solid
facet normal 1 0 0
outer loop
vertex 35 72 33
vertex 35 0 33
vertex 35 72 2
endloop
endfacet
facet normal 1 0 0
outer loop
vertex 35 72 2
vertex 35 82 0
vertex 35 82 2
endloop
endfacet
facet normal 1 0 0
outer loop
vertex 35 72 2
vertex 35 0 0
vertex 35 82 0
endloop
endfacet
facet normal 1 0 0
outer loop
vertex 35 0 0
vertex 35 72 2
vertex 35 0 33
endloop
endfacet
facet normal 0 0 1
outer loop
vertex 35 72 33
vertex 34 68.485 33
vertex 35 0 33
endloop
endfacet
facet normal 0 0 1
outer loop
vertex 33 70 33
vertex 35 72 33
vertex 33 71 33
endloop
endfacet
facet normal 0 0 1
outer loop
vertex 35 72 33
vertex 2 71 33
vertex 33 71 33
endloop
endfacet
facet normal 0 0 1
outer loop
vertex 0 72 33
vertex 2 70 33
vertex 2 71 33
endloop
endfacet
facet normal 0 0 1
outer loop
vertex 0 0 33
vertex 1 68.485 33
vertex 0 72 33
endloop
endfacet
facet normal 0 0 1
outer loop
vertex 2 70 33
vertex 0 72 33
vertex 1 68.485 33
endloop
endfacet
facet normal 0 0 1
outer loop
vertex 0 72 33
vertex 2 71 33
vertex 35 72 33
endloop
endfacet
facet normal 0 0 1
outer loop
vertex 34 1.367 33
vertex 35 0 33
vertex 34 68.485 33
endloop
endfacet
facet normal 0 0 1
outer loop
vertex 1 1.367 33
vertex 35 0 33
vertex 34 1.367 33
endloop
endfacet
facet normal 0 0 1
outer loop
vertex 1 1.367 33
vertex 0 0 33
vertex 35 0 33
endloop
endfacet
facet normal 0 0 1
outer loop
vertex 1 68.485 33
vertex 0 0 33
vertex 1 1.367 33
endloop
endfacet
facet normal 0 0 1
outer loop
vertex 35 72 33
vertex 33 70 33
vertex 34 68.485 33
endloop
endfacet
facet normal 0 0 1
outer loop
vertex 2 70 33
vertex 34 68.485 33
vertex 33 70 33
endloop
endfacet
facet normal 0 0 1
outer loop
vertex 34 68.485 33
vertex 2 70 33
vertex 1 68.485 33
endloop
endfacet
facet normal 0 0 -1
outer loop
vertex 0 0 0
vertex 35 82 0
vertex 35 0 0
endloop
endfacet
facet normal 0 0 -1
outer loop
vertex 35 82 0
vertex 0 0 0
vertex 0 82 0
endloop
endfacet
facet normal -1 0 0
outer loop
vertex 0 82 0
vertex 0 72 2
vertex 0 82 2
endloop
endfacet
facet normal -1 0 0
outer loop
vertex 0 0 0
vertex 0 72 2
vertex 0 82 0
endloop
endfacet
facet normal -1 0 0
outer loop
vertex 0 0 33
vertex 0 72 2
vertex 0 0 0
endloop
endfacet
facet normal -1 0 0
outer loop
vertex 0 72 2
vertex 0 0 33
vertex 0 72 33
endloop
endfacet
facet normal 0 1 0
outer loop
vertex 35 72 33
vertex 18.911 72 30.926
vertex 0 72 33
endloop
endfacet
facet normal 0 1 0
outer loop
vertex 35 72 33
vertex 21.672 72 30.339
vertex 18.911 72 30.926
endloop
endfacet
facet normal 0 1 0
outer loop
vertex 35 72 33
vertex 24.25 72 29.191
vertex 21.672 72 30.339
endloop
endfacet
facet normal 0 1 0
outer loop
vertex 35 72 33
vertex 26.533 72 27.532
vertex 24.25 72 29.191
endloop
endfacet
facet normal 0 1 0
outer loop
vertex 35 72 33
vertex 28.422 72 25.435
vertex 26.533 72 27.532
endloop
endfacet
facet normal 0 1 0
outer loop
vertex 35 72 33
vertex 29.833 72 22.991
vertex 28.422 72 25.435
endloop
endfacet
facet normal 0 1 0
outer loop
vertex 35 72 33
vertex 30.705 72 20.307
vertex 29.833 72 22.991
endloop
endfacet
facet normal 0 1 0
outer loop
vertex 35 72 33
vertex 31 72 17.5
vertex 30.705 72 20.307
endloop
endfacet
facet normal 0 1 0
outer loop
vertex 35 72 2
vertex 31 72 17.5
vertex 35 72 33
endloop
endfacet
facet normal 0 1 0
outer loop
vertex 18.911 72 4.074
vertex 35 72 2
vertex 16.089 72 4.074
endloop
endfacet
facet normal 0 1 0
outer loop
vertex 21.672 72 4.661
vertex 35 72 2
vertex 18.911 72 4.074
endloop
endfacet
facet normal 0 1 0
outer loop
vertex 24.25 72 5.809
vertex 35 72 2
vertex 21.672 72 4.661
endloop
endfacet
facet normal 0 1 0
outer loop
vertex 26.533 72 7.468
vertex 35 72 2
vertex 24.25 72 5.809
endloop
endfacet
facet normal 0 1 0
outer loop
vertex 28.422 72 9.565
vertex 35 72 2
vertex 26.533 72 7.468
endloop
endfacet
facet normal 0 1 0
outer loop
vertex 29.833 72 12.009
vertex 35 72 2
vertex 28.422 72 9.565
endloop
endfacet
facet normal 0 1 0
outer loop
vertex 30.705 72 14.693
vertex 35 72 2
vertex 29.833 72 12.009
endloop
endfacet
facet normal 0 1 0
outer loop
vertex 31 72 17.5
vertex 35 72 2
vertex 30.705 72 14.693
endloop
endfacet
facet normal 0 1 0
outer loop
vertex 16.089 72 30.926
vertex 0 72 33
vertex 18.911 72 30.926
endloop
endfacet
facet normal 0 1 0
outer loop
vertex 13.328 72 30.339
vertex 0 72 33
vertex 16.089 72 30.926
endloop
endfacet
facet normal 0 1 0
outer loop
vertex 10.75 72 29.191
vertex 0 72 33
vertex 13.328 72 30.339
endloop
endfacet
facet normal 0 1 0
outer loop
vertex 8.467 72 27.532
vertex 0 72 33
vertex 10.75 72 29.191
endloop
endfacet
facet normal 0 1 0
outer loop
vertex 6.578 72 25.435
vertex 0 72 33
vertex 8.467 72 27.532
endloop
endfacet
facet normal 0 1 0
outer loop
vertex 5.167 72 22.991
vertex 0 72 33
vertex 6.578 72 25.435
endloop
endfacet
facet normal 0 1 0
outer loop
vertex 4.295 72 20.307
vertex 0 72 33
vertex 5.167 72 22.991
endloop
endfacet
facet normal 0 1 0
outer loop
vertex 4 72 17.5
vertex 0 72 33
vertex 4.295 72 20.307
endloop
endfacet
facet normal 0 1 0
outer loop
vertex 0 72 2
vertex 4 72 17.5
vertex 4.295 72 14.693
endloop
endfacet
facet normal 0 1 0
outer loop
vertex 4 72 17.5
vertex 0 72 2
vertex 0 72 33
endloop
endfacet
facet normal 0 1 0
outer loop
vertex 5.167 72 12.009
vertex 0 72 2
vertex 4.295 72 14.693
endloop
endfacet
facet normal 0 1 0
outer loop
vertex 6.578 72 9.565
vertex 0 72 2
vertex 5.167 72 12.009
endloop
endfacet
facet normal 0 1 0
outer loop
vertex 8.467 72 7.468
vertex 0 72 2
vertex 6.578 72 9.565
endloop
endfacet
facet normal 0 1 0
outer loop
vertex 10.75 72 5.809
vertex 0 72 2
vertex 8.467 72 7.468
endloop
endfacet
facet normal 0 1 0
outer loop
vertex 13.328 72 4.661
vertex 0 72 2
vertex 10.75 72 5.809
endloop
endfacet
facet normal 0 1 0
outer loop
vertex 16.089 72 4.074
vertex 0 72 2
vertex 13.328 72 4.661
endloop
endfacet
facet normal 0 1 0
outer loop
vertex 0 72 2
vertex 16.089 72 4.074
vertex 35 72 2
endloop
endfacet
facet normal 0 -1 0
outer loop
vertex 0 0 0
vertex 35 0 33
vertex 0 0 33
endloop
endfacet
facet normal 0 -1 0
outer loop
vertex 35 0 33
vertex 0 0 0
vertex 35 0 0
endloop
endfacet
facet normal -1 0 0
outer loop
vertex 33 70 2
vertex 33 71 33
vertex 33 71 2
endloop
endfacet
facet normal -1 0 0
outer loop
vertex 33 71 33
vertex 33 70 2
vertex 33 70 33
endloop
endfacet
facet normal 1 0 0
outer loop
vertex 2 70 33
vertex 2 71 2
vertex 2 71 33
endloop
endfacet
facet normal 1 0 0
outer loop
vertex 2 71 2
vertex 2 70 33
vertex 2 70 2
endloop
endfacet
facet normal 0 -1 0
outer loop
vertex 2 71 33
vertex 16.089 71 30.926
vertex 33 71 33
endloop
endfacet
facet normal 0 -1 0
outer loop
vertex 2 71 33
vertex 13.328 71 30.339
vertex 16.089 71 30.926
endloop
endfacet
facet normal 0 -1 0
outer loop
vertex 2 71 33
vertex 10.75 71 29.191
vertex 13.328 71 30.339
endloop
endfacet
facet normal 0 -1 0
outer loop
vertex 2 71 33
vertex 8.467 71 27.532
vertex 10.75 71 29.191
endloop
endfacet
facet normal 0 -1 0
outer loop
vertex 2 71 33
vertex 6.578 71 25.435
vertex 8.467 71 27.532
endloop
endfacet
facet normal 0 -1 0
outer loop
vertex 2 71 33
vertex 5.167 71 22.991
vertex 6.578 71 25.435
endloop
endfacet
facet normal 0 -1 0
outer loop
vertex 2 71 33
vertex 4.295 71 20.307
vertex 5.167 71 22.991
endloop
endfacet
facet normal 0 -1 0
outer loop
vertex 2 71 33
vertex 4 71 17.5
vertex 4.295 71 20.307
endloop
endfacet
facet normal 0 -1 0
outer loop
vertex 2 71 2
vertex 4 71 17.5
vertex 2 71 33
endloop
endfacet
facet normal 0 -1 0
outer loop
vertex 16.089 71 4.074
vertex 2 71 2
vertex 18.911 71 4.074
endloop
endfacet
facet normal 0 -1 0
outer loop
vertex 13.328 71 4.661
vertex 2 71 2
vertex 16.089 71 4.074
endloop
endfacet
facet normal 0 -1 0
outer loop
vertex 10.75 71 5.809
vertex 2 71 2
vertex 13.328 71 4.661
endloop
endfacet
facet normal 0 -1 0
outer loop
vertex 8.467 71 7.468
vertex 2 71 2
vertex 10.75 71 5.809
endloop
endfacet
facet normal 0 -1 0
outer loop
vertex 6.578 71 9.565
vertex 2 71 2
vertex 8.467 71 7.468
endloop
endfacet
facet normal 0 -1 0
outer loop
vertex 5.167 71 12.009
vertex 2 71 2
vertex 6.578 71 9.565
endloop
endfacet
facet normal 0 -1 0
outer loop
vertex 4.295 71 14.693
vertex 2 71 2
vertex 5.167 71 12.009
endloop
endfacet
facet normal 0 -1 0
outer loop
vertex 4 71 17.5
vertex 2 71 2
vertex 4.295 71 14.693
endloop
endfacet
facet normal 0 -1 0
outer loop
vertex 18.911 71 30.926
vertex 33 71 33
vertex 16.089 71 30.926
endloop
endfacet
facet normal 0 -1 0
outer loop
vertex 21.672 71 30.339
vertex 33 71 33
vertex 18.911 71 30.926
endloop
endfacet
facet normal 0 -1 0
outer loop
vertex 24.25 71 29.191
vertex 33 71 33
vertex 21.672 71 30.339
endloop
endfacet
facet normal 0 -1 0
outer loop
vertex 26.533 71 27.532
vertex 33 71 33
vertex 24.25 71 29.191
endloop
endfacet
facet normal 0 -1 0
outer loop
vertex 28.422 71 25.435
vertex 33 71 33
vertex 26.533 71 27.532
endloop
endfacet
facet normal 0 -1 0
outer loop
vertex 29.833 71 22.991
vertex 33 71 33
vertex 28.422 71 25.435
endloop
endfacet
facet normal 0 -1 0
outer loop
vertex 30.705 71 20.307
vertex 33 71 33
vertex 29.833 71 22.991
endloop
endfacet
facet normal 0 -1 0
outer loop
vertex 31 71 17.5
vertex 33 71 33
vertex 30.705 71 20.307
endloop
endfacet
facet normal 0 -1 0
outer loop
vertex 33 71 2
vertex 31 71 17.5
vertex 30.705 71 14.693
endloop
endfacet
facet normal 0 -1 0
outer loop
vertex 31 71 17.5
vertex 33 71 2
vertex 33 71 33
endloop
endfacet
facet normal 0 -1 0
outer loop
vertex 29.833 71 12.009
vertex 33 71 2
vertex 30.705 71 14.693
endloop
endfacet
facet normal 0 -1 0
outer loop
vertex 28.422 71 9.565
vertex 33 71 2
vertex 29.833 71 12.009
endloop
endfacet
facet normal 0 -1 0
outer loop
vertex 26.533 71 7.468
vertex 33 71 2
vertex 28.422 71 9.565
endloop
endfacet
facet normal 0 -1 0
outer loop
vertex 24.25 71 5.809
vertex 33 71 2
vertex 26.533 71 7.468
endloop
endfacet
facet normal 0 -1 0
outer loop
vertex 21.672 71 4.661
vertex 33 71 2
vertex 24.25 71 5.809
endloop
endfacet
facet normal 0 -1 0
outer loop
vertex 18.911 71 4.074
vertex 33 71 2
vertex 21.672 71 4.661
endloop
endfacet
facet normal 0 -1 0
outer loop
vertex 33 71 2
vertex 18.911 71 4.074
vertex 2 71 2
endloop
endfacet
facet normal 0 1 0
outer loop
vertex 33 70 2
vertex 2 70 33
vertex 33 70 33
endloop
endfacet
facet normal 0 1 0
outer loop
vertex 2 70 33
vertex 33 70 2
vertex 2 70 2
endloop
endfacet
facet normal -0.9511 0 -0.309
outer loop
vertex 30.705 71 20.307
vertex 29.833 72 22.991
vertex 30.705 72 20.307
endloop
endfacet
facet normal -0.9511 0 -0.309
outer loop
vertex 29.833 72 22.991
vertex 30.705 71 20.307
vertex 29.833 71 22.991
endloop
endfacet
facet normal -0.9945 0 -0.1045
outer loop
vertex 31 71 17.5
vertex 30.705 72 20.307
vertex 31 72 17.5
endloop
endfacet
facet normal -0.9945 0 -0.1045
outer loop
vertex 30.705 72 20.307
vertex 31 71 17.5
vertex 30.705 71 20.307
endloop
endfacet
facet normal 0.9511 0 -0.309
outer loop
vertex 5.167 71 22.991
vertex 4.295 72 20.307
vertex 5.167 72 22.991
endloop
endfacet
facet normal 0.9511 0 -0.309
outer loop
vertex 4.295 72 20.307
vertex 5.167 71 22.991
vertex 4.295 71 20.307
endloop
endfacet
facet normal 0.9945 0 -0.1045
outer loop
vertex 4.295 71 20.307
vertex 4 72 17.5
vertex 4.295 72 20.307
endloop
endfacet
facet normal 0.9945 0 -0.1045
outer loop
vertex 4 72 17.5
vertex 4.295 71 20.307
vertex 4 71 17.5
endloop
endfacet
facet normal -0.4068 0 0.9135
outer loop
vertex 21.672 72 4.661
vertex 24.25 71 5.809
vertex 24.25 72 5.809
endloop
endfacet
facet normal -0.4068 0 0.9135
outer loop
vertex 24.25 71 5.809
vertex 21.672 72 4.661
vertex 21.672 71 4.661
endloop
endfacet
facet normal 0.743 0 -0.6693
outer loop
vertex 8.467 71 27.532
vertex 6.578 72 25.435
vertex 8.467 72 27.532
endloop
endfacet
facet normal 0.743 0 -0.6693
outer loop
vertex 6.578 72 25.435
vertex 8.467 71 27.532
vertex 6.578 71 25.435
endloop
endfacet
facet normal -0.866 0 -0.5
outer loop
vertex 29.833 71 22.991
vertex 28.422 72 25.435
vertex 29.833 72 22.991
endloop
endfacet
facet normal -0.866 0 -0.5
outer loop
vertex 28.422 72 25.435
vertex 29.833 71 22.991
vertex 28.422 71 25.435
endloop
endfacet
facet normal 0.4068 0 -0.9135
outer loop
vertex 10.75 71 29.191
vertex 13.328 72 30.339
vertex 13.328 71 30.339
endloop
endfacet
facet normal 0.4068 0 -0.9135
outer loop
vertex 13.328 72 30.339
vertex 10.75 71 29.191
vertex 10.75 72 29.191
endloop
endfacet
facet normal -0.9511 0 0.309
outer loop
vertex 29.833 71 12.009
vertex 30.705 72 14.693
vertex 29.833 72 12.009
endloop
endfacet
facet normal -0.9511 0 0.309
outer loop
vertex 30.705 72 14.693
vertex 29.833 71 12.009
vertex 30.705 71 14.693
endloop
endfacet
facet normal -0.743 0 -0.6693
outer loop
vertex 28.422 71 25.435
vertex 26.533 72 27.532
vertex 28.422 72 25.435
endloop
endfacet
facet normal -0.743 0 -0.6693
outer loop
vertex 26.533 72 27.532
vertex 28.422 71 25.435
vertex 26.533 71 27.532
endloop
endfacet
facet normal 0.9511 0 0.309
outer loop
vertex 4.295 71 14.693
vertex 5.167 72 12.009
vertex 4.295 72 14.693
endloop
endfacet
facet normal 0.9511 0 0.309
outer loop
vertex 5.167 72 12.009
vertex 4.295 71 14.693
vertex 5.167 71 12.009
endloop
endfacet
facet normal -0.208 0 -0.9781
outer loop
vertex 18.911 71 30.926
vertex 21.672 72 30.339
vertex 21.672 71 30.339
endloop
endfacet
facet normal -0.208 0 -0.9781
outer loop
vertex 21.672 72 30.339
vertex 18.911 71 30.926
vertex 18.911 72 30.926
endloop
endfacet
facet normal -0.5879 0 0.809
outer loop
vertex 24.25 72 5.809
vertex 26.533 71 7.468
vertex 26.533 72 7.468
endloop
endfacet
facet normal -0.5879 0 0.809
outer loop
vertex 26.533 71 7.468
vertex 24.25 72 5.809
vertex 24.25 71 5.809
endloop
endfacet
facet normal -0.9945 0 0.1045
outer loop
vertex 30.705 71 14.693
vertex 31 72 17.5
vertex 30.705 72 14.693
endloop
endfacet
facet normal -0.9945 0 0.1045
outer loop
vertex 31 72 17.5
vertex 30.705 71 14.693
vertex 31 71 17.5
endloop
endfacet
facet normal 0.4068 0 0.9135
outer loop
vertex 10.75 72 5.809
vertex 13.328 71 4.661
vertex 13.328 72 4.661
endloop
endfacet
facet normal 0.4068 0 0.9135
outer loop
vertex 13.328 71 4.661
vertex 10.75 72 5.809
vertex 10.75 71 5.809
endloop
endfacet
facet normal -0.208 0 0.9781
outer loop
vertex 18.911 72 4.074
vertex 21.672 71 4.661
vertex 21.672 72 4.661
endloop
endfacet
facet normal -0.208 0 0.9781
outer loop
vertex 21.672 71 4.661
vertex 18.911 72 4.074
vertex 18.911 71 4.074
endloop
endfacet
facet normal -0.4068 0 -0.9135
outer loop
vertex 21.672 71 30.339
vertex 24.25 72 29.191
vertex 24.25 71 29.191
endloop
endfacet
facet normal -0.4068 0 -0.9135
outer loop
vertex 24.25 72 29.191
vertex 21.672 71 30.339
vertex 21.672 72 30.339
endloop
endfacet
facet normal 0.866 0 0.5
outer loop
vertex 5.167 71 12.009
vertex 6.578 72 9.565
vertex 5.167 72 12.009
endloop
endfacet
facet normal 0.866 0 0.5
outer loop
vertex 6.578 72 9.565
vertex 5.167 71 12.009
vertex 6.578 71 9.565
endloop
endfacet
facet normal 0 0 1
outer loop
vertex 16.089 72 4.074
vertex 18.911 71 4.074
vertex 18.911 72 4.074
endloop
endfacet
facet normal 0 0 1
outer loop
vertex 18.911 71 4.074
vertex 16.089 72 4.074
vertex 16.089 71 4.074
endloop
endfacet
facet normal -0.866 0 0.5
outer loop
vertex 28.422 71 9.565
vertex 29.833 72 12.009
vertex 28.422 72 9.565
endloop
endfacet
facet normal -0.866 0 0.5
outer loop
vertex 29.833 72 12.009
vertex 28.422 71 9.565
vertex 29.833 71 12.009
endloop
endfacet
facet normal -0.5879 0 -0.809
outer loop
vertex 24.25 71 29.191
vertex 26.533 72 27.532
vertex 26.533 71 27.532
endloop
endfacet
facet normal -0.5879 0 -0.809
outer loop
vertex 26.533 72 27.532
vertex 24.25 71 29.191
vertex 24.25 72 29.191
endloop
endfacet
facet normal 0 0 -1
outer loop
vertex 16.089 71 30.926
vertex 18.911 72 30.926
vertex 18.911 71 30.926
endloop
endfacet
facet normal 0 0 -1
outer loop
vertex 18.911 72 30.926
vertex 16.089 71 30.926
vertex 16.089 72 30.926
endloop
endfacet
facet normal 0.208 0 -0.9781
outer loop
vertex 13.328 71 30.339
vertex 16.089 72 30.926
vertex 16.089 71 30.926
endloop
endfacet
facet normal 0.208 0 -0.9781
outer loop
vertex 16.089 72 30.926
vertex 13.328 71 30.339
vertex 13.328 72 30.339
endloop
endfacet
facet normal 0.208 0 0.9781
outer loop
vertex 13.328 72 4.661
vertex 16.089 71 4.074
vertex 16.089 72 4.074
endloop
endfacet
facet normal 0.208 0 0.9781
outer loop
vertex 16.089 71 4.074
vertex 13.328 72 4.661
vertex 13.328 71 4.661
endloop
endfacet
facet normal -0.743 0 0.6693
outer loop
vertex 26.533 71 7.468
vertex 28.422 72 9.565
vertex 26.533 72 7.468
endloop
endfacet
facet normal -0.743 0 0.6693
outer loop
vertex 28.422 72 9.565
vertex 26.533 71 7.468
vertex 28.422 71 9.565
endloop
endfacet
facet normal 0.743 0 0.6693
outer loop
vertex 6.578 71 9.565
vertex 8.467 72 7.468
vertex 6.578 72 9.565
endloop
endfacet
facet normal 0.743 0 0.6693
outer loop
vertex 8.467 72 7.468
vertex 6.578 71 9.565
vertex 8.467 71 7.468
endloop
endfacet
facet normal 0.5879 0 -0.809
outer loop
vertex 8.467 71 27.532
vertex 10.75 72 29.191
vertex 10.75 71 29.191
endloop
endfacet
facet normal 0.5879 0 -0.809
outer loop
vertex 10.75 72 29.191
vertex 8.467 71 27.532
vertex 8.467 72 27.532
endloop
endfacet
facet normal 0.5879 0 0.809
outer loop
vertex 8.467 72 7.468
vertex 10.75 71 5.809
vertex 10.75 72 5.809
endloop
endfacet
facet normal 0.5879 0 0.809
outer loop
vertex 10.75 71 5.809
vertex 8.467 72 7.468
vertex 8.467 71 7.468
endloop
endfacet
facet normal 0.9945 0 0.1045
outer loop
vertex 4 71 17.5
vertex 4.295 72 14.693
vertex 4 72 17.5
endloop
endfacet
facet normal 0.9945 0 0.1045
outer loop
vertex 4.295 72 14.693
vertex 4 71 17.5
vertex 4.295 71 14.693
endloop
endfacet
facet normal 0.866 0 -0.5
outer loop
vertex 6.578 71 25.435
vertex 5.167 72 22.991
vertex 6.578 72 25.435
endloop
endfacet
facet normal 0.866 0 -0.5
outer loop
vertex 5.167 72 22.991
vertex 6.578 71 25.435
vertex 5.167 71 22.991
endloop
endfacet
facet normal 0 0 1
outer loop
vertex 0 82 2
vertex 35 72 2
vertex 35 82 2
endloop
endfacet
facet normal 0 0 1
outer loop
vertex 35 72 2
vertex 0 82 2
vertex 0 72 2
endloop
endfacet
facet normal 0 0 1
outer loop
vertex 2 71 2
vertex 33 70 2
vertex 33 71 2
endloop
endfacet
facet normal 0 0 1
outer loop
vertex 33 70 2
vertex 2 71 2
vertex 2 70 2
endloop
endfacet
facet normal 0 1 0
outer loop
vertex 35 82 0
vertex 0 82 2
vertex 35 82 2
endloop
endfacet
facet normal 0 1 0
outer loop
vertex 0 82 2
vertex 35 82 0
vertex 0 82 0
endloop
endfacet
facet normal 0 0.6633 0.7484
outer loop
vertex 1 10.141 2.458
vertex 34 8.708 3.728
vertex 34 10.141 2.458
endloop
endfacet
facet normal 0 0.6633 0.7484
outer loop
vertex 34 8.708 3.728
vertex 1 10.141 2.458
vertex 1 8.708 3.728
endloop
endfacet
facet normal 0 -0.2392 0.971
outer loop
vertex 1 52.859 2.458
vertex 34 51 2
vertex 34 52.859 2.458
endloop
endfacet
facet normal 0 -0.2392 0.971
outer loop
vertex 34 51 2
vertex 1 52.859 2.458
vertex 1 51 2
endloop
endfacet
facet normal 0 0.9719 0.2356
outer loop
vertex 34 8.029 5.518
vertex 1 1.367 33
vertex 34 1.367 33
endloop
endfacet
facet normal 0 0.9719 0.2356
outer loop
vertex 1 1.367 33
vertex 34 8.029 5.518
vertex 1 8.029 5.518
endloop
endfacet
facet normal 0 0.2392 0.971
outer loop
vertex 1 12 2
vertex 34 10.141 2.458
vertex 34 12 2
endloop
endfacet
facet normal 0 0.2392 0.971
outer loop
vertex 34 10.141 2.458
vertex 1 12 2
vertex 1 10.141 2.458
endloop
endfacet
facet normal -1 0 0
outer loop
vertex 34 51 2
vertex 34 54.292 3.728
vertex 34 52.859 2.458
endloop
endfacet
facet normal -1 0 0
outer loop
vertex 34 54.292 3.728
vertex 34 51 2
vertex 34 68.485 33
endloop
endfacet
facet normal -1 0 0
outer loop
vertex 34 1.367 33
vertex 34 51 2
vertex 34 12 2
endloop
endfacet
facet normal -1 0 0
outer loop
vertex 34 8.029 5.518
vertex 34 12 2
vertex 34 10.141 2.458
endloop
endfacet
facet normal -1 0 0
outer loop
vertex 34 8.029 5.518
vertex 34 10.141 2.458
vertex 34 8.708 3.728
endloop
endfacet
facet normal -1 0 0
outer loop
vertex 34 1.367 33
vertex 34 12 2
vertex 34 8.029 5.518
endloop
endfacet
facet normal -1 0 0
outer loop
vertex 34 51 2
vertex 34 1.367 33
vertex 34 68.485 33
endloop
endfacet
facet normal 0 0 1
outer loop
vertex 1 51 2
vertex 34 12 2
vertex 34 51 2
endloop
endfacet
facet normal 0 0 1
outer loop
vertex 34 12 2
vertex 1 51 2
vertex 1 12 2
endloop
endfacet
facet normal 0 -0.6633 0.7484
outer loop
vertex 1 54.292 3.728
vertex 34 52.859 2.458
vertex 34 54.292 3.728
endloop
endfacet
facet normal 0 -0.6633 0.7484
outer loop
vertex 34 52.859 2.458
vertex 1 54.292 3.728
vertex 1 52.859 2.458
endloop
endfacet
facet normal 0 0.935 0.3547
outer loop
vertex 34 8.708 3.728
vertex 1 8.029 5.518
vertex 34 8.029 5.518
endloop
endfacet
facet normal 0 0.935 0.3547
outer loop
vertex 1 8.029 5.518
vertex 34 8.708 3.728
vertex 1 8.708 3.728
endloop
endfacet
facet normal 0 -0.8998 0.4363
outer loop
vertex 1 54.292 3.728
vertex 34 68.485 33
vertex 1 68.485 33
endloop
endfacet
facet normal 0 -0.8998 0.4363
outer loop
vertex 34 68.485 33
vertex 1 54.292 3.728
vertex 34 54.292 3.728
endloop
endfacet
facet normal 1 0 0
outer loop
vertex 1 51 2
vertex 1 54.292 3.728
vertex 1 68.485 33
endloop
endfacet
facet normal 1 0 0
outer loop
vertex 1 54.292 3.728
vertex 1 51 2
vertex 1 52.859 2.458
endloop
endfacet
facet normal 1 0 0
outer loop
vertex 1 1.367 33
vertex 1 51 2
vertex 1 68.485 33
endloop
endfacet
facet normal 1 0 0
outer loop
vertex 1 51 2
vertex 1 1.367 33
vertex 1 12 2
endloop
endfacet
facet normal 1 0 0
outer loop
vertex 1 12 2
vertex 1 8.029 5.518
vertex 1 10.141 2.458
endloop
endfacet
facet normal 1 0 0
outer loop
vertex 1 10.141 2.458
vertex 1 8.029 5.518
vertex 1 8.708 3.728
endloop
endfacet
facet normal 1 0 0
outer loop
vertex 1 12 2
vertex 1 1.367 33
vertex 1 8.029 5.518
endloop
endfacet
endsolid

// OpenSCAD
echo("----------------------------------------");
smidge = .01;
minkowsky_diameter = 2;
handle_length = 10;
handle_height = 3;
base_width = 35;
base_length = 72 + handle_length;
base_height = 2;

outer_width = base_width;
outer_length = base_length - handle_length;
outer_height = 35 - base_height;

inner_width = 32;
inner_length = 68;
inner_height = 32;

slot_thickness = 1;
slot_setback = 2;
slot_front_position = outer_length - slot_setback;
slot_side_margin = 2;
slot_width = outer_width - 2*slot_side_margin;
slot_height = outer_height;

window_diameter = outer_width - 8;
edge_rounder_diameter = 8;

drawer();

//the hollow
bottom_z = edge_rounder_diameter/2+base_height;
top_z = outer_height-edge_rounder_diameter/2 + 10;
back_y =  edge_rounder_diameter/2;
front_y =  outer_length-edge_rounder_diameter/2 - 1;
hollow_x = 1;

module the_hollow() {
  color("red") {
    hull() {
    back_bottom_edge();
    back_top_edge();
    front_bottom_edge();
    front_top_edge();
    }
  }
}

module back_bottom_edge() {
  translate([hollow_x, back_y+edge_rounder_diameter, bottom_z]) {
    edge_rounder();
  }
}
module back_top_edge() {
  translate([hollow_x, back_y, top_z]) {
    edge_rounder();
  }
}
module front_bottom_edge() {
  translate([hollow_x, front_y-edge_rounder_diameter*2, bottom_z]) {
    edge_rounder();
  }
}
module front_top_edge() {
  translate([hollow_x, front_y, top_z]) {
    edge_rounder();
  }
}
module edge_rounder() {
  rotate([0, 90, 0]) {
    cylinder(h=outer_width-2, d=edge_rounder_diameter);
  }
}

module drawer() {
  difference() {
  union() {
    base();
    box();
  }
  the_hollow(); 
}
}
module box() {
  difference() {
    cube([base_width, outer_length, outer_height]);
    label_slot();
    label_window();
  }
}

module base() {
  cube([base_width, base_length, base_height]);
  }

module label_slot() {
  difference() {
  translate([slot_side_margin, slot_front_position, 1]) {
    cube([slot_width, slot_thickness, slot_height]);
    }
  }
}

module label_window() {
  translate([base_width/2, outer_length+2, outer_height/2+1]) {
    rotate([90, 0, 0]) {
      cylinder(h=3, d=window_diameter);
    }
  }
}

module flat_sides_of_hollow() {
  translate([0, 0, inner_height]) {
    cube([inner_width, inner_length, inner_height/2]);
  }
}

module dirigible(radius) {
  translate([0, inner_length/2-radius, 0]) {
    sphere(radius);
  }
  translate([0, -inner_length/2+radius, 0]) {
    sphere(radius);
  }
}

module rounded_side_of_hollow() {
  hull() {
    dirigible(14);
    translate([0, 0, inner_height])
      dirigible(19);
  }
}

// module drawer() {
// difference() {
//  union() {
//    box();
//    base();
//  }
//  flat_sides_of_hollow();
//  rounded_side_of_hollow();
//  label_window();
//}
//}
